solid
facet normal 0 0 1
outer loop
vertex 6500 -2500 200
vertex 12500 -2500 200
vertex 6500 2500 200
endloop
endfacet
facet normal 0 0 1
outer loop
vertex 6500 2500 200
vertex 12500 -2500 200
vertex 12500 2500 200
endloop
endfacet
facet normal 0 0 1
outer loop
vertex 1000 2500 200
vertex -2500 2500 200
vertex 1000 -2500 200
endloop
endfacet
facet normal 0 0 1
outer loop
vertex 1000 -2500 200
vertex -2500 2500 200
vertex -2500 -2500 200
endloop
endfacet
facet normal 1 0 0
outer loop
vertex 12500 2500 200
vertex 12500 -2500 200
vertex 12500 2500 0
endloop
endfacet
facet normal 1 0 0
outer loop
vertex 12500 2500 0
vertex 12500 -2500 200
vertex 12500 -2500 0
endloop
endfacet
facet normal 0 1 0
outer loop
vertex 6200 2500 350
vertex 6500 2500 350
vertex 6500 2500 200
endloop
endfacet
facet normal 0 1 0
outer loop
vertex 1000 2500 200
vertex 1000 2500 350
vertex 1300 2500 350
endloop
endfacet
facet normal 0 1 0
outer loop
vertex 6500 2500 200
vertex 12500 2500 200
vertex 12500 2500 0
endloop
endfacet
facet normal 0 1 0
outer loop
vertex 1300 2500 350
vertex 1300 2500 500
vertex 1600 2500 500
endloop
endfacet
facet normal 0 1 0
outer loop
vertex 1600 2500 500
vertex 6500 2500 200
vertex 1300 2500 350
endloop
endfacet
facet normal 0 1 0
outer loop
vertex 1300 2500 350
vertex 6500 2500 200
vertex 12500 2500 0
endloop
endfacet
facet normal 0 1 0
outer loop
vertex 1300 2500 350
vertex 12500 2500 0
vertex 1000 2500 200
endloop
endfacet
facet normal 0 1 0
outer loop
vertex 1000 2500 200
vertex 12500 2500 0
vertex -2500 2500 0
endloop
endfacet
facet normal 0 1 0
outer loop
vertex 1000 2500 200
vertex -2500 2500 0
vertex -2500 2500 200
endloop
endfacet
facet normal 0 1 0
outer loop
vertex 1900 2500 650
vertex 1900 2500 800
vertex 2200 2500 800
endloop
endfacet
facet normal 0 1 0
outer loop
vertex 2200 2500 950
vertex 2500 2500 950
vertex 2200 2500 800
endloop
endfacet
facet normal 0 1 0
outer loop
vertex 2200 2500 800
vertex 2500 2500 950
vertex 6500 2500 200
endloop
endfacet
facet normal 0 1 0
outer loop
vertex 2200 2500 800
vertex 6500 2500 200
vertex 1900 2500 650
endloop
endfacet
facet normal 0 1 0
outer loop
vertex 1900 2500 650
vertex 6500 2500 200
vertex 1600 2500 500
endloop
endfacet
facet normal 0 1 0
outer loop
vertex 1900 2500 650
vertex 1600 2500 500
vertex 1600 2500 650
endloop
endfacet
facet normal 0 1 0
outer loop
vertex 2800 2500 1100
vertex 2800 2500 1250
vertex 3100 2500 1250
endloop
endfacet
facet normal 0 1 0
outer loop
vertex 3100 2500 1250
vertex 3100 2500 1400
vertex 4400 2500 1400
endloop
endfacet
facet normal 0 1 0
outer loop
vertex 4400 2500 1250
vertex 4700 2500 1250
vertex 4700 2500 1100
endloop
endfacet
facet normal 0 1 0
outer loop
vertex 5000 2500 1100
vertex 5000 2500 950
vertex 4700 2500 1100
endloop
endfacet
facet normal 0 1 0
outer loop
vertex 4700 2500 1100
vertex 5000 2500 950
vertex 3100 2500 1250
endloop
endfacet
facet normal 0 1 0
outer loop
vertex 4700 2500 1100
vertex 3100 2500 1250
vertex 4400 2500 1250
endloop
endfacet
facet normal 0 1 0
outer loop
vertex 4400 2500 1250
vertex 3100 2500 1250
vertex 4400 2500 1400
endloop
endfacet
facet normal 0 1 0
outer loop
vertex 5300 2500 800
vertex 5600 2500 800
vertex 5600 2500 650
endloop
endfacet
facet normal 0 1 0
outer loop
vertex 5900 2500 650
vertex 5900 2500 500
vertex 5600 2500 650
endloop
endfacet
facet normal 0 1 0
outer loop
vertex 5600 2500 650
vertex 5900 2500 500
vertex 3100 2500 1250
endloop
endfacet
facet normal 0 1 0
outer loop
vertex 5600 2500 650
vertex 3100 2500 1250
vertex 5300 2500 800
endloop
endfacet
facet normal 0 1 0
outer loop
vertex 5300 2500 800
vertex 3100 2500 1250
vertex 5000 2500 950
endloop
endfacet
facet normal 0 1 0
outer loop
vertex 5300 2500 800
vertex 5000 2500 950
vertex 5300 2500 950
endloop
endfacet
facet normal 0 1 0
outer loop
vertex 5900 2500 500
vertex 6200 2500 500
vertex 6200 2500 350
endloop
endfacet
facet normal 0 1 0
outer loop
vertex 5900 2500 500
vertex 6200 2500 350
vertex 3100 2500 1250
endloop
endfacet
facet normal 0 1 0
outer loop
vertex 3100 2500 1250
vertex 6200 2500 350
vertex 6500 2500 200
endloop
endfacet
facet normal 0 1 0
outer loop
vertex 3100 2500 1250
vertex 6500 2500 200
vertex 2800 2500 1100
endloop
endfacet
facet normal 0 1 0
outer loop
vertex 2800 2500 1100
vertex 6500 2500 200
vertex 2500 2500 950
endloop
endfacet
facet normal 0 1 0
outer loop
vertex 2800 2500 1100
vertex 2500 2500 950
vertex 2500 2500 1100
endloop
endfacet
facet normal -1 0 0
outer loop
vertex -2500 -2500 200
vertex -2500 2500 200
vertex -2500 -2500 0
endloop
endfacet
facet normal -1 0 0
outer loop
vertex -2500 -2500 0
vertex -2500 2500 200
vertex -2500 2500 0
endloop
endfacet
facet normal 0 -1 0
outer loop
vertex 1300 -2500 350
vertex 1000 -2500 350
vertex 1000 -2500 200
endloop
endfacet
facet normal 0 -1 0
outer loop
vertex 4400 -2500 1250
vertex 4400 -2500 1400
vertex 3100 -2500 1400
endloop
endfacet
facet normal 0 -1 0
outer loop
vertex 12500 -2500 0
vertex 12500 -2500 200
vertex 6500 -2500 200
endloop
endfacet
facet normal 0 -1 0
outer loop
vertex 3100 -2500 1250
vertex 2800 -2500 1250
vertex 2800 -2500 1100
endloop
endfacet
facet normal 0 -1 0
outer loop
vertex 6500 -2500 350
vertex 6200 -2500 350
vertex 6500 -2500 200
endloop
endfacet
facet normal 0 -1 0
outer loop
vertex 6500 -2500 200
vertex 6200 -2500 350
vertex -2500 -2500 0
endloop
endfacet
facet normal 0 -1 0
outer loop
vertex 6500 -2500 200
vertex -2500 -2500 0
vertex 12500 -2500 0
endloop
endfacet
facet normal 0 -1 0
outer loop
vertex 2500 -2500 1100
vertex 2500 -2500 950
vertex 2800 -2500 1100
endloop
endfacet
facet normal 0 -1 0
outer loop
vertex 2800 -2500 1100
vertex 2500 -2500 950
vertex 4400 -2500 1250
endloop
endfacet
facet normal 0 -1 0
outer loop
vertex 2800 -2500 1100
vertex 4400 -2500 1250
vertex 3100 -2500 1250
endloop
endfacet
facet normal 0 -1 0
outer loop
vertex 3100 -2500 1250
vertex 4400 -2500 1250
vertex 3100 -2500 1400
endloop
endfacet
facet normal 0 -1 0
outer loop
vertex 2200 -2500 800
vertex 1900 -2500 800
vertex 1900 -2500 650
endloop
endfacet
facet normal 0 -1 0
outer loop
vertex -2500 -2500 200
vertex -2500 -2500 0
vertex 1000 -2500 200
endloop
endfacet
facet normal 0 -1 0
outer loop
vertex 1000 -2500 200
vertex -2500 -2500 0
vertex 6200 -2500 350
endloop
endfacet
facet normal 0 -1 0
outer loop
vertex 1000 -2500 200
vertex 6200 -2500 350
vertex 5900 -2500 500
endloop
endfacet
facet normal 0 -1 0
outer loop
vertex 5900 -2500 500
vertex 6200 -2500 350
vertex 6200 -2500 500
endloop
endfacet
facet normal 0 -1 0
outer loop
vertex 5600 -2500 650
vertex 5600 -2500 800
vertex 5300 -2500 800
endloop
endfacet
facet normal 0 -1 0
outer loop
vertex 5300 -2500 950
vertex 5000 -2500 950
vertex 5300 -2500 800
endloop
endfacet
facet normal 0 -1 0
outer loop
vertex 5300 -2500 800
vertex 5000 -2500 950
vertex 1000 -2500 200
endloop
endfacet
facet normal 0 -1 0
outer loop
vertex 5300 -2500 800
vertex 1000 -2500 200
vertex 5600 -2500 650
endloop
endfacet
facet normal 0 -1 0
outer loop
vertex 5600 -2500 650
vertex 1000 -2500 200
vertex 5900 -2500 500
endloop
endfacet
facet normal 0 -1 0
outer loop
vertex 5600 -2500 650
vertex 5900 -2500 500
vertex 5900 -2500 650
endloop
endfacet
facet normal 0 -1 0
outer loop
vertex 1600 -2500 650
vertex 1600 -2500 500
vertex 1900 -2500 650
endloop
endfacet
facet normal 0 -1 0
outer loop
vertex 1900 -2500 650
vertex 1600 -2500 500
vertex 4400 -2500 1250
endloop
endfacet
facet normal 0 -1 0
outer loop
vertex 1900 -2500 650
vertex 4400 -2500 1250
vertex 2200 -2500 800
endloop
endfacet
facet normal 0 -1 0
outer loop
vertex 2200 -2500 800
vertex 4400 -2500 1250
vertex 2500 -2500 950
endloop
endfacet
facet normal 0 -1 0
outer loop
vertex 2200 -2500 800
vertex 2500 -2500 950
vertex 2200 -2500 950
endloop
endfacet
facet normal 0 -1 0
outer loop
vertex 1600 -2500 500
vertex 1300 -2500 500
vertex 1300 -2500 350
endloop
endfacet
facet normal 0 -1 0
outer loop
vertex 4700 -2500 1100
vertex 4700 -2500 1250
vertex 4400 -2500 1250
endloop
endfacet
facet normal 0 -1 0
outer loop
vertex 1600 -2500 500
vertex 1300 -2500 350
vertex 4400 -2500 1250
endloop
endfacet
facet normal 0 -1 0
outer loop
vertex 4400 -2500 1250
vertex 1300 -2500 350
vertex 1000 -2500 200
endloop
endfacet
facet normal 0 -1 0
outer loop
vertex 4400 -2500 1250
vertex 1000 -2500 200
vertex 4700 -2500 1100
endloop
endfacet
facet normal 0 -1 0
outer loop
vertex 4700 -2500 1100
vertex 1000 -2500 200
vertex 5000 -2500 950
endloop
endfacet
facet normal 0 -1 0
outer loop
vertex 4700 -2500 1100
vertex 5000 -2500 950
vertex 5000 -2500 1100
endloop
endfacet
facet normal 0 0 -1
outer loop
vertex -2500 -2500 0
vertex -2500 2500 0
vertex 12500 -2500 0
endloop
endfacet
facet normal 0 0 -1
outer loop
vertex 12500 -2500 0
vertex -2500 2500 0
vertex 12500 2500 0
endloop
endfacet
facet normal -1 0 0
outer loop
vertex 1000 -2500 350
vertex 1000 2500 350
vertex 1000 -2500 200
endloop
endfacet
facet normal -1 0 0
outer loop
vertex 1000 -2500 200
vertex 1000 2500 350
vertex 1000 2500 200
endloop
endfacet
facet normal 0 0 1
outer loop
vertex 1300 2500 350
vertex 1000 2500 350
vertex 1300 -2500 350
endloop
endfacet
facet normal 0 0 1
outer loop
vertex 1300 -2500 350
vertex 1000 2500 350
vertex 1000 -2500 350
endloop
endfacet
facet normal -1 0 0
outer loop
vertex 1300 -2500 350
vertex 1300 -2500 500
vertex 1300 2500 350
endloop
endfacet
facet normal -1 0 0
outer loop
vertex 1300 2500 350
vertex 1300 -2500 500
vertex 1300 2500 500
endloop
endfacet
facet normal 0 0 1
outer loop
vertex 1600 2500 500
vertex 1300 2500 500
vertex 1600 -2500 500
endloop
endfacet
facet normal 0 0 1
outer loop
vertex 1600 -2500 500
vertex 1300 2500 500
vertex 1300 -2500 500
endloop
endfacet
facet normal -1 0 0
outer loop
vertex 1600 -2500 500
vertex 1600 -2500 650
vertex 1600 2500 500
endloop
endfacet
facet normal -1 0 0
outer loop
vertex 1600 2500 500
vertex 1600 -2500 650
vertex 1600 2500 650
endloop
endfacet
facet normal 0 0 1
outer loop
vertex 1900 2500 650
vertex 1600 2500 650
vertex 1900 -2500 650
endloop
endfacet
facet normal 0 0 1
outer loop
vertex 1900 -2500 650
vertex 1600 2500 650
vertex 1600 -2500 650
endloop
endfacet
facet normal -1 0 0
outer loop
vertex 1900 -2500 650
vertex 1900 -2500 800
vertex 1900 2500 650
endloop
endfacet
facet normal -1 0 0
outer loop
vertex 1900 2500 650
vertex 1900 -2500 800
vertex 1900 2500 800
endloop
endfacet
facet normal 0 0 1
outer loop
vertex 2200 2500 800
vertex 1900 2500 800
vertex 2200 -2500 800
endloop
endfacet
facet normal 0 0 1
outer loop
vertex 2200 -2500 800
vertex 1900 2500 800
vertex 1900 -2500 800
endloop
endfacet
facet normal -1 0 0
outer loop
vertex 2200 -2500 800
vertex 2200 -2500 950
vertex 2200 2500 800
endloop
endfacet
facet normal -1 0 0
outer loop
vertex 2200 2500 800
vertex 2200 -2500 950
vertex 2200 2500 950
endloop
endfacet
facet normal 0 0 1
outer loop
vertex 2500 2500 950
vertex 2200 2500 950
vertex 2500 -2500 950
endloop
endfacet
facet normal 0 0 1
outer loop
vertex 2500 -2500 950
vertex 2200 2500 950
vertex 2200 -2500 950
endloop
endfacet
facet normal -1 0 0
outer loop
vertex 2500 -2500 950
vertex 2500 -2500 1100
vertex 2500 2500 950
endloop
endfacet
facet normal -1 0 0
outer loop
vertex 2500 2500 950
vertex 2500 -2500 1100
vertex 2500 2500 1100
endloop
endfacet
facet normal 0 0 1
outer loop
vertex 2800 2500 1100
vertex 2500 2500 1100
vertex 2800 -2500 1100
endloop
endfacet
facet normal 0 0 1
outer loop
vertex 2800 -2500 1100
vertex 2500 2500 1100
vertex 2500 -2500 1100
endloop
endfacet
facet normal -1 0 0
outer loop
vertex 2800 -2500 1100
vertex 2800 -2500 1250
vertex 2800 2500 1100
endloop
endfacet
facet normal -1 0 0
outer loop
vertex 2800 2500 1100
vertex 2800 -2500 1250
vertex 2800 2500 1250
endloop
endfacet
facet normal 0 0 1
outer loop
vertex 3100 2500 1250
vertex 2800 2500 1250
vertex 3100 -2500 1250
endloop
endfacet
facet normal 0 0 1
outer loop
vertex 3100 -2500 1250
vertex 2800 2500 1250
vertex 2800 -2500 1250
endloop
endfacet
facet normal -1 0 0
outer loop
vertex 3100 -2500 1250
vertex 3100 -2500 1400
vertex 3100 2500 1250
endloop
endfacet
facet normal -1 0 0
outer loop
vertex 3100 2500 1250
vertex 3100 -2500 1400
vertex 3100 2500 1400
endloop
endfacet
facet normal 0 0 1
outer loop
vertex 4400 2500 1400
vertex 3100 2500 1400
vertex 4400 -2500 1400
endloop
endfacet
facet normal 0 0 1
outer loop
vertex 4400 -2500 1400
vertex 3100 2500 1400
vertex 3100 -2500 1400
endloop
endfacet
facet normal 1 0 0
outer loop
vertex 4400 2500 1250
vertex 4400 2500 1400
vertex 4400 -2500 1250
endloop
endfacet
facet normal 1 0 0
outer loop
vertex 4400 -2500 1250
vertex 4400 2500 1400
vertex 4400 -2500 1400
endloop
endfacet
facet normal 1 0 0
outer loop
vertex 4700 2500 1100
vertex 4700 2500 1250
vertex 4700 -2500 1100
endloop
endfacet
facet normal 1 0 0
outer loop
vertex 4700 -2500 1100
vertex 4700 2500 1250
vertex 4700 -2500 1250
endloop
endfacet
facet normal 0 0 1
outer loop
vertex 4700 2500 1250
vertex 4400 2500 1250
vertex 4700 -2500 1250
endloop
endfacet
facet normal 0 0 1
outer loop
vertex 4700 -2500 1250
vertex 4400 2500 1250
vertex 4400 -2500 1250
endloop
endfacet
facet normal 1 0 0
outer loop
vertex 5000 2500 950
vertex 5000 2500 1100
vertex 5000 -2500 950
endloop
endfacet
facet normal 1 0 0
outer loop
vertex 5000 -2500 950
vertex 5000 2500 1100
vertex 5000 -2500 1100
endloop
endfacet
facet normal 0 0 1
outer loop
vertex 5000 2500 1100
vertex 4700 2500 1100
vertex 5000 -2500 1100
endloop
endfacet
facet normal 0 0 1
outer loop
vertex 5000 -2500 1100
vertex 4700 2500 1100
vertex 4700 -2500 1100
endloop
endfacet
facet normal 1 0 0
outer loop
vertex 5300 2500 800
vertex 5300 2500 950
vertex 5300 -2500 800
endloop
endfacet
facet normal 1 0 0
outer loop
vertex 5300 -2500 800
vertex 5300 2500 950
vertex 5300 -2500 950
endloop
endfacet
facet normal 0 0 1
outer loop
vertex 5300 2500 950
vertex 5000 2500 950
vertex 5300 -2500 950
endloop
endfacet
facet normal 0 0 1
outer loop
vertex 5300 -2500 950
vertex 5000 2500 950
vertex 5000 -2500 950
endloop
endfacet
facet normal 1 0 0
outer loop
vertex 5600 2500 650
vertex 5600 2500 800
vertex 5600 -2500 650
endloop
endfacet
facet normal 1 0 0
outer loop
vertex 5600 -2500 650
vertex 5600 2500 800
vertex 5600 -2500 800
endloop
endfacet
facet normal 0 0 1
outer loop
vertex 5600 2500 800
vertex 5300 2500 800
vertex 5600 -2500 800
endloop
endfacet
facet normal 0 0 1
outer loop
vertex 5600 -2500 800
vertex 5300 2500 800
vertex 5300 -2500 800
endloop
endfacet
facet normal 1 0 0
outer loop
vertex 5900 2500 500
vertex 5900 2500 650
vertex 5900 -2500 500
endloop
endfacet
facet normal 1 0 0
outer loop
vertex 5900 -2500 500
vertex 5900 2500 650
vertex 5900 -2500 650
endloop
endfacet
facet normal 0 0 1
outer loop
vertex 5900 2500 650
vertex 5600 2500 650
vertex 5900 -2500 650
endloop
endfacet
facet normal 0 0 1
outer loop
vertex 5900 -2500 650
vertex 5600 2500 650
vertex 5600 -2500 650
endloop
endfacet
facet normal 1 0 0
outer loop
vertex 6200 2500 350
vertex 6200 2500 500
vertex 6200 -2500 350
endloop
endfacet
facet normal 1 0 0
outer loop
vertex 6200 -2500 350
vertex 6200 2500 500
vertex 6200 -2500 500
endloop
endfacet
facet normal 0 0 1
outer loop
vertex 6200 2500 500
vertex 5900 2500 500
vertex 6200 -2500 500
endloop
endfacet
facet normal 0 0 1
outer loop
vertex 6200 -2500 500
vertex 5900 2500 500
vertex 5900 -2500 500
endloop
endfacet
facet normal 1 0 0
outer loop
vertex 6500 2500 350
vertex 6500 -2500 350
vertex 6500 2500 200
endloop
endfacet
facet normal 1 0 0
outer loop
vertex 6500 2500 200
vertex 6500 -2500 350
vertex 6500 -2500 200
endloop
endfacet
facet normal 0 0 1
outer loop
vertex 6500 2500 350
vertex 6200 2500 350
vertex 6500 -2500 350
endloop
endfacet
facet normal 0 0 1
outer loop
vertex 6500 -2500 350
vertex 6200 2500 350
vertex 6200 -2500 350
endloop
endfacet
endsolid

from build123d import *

# Parameters (mm, degrees)
SKETCH3_W           = 15000
SKETCH3_H           = 5000
BOSS_EXTRUDE1_DEPTH = 200
SKETCH4_W           = 300
SKETCH4_H           = 5000
STEP1_DEPTH         = 150
SKETCH4_4_W         = 300
SKETCH4_4_H         = 5000
STEP2_DEPTH         = 300
SKETCH4_5_W         = 300
SKETCH4_5_H         = 5000
STEP3_DEPTH         = 450
SKETCH4_6_W         = 300
SKETCH4_6_H         = 5000
STEP4_DEPTH         = 600
SKETCH4_7_W         = 300
SKETCH4_7_H         = 5000
STEP5_DEPTH         = 750
SKETCH4_8_W         = 300
SKETCH4_8_H         = 5000
STEP6_DEPTH         = 900
SKETCH4_9_W         = 300
SKETCH4_9_H         = 5000
STEP7_DEPTH         = 1050
SKETCH4_10_W        = 300
SKETCH4_10_H        = 5000
STEP8_DEPTH         = 1200
SKETCH9_W           = 1000
SKETCH9_H           = 5000
BOSS_EXTRUDE2_DEPTH = 1200
SKETCH10_W          = 300
SKETCH10_H          = 5000
BOSS_EXTRUDE3_DEPTH = 1050
SKETCH10_3_W        = 300
SKETCH10_3_H        = 5000
BOSS_EXTRUDE4_DEPTH = 900
SKETCH10_4_W        = 300
SKETCH10_4_H        = 5000
BOSS_EXTRUDE5_DEPTH = 750
SKETCH10_5_W        = 300
SKETCH10_5_H        = 5000
BOSS_EXTRUDE6_DEPTH = 600
SKETCH10_6_W        = 300
SKETCH10_6_H        = 5000
BOSS_EXTRUDE7_DEPTH = 450
SKETCH10_7_W        = 300
SKETCH10_7_H        = 5000
BOSS_EXTRUDE8_DEPTH = 300
SKETCH10_8_W        = 300
SKETCH10_8_H        = 5000
BOSS_EXTRUDE9_DEPTH = 150


with BuildPart() as part:
    # Sketch3 → Boss-Extrude1 (new body)
    with BuildSketch(Plane.XY):
        with Locations((5000, 0)):
            Rectangle(SKETCH3_W, SKETCH3_H)
    extrude(amount=BOSS_EXTRUDE1_DEPTH)

    # Sketch4 → Step1 (add)
    with BuildSketch(Plane.XY.offset(200)):
        with Locations((1150, 0)):
            Rectangle(SKETCH4_W, SKETCH4_H)
    extrude(amount=STEP1_DEPTH)

    # Sketch4<4> → Step2 (add)
    with BuildSketch(Plane.XY.offset(200)):
        with Locations((1450, 0)):
            Rectangle(SKETCH4_4_W, SKETCH4_4_H)
    extrude(amount=STEP2_DEPTH)

    # Sketch4<5> → Step3 (add)
    with BuildSketch(Plane.XY.offset(200)):
        with Locations((1750, 0)):
            Rectangle(SKETCH4_5_W, SKETCH4_5_H)
    extrude(amount=STEP3_DEPTH)

    # Sketch4<6> → Step4 (add)
    with BuildSketch(Plane.XY.offset(200)):
        with Locations((2050, 0)):
            Rectangle(SKETCH4_6_W, SKETCH4_6_H)
    extrude(amount=STEP4_DEPTH)

    # Sketch4<7> → Step5 (add)
    with BuildSketch(Plane.XY.offset(200)):
        with Locations((2350, 0)):
            Rectangle(SKETCH4_7_W, SKETCH4_7_H)
    extrude(amount=STEP5_DEPTH)

    # Sketch4<8> → Step6 (add)
    with BuildSketch(Plane.XY.offset(200)):
        with Locations((2650, 0)):
            Rectangle(SKETCH4_8_W, SKETCH4_8_H)
    extrude(amount=STEP6_DEPTH)

    # Sketch4<9> → Step7 (add)
    with BuildSketch(Plane.XY.offset(200)):
        with Locations((2950, 0)):
            Rectangle(SKETCH4_9_W, SKETCH4_9_H)
    extrude(amount=STEP7_DEPTH)

    # Sketch4<10> → Step8 (add)
    with BuildSketch(Plane.XY.offset(200)):
        with Locations((3250, 0)):
            Rectangle(SKETCH4_10_W, SKETCH4_10_H)
    extrude(amount=STEP8_DEPTH)

    # Sketch9 → Boss-Extrude2 (add)
    with BuildSketch(Plane.XY.offset(200)):
        with Locations((3900, 0)):
            Rectangle(SKETCH9_W, SKETCH9_H)
    extrude(amount=BOSS_EXTRUDE2_DEPTH)

    # Sketch10 → Boss-Extrude3 (add)
    with BuildSketch(Plane.XY.offset(200)):
        with Locations((4550, 0)):
            Rectangle(SKETCH10_W, SKETCH10_H)
    extrude(amount=BOSS_EXTRUDE3_DEPTH)

    # Sketch10<3> → Boss-Extrude4 (add)
    with BuildSketch(Plane.XY.offset(200)):
        with Locations((4850, 0)):
            Rectangle(SKETCH10_3_W, SKETCH10_3_H)
    extrude(amount=BOSS_EXTRUDE4_DEPTH)

    # Sketch10<4> → Boss-Extrude5 (add)
    with BuildSketch(Plane.XY.offset(200)):
        with Locations((5150, 0)):
            Rectangle(SKETCH10_4_W, SKETCH10_4_H)
    extrude(amount=BOSS_EXTRUDE5_DEPTH)

    # Sketch10<5> → Boss-Extrude6 (add)
    with BuildSketch(Plane.XY.offset(200)):
        with Locations((5450, 0)):
            Rectangle(SKETCH10_5_W, SKETCH10_5_H)
    extrude(amount=BOSS_EXTRUDE6_DEPTH)

    # Sketch10<6> → Boss-Extrude7 (add)
    with BuildSketch(Plane.XY.offset(200)):
        with Locations((5750, 0)):
            Rectangle(SKETCH10_6_W, SKETCH10_6_H)
    extrude(amount=BOSS_EXTRUDE7_DEPTH)

    # Sketch10<7> → Boss-Extrude8 (add)
    with BuildSketch(Plane.XY.offset(200)):
        with Locations((6050, 0)):
            Rectangle(SKETCH10_7_W, SKETCH10_7_H)
    extrude(amount=BOSS_EXTRUDE8_DEPTH)

    # Sketch10<8> → Boss-Extrude9 (add)
    with BuildSketch(Plane.XY.offset(200)):
        with Locations((6350, 0)):
            Rectangle(SKETCH10_8_W, SKETCH10_8_H)
    extrude(amount=BOSS_EXTRUDE9_DEPTH)


solid = part.part
